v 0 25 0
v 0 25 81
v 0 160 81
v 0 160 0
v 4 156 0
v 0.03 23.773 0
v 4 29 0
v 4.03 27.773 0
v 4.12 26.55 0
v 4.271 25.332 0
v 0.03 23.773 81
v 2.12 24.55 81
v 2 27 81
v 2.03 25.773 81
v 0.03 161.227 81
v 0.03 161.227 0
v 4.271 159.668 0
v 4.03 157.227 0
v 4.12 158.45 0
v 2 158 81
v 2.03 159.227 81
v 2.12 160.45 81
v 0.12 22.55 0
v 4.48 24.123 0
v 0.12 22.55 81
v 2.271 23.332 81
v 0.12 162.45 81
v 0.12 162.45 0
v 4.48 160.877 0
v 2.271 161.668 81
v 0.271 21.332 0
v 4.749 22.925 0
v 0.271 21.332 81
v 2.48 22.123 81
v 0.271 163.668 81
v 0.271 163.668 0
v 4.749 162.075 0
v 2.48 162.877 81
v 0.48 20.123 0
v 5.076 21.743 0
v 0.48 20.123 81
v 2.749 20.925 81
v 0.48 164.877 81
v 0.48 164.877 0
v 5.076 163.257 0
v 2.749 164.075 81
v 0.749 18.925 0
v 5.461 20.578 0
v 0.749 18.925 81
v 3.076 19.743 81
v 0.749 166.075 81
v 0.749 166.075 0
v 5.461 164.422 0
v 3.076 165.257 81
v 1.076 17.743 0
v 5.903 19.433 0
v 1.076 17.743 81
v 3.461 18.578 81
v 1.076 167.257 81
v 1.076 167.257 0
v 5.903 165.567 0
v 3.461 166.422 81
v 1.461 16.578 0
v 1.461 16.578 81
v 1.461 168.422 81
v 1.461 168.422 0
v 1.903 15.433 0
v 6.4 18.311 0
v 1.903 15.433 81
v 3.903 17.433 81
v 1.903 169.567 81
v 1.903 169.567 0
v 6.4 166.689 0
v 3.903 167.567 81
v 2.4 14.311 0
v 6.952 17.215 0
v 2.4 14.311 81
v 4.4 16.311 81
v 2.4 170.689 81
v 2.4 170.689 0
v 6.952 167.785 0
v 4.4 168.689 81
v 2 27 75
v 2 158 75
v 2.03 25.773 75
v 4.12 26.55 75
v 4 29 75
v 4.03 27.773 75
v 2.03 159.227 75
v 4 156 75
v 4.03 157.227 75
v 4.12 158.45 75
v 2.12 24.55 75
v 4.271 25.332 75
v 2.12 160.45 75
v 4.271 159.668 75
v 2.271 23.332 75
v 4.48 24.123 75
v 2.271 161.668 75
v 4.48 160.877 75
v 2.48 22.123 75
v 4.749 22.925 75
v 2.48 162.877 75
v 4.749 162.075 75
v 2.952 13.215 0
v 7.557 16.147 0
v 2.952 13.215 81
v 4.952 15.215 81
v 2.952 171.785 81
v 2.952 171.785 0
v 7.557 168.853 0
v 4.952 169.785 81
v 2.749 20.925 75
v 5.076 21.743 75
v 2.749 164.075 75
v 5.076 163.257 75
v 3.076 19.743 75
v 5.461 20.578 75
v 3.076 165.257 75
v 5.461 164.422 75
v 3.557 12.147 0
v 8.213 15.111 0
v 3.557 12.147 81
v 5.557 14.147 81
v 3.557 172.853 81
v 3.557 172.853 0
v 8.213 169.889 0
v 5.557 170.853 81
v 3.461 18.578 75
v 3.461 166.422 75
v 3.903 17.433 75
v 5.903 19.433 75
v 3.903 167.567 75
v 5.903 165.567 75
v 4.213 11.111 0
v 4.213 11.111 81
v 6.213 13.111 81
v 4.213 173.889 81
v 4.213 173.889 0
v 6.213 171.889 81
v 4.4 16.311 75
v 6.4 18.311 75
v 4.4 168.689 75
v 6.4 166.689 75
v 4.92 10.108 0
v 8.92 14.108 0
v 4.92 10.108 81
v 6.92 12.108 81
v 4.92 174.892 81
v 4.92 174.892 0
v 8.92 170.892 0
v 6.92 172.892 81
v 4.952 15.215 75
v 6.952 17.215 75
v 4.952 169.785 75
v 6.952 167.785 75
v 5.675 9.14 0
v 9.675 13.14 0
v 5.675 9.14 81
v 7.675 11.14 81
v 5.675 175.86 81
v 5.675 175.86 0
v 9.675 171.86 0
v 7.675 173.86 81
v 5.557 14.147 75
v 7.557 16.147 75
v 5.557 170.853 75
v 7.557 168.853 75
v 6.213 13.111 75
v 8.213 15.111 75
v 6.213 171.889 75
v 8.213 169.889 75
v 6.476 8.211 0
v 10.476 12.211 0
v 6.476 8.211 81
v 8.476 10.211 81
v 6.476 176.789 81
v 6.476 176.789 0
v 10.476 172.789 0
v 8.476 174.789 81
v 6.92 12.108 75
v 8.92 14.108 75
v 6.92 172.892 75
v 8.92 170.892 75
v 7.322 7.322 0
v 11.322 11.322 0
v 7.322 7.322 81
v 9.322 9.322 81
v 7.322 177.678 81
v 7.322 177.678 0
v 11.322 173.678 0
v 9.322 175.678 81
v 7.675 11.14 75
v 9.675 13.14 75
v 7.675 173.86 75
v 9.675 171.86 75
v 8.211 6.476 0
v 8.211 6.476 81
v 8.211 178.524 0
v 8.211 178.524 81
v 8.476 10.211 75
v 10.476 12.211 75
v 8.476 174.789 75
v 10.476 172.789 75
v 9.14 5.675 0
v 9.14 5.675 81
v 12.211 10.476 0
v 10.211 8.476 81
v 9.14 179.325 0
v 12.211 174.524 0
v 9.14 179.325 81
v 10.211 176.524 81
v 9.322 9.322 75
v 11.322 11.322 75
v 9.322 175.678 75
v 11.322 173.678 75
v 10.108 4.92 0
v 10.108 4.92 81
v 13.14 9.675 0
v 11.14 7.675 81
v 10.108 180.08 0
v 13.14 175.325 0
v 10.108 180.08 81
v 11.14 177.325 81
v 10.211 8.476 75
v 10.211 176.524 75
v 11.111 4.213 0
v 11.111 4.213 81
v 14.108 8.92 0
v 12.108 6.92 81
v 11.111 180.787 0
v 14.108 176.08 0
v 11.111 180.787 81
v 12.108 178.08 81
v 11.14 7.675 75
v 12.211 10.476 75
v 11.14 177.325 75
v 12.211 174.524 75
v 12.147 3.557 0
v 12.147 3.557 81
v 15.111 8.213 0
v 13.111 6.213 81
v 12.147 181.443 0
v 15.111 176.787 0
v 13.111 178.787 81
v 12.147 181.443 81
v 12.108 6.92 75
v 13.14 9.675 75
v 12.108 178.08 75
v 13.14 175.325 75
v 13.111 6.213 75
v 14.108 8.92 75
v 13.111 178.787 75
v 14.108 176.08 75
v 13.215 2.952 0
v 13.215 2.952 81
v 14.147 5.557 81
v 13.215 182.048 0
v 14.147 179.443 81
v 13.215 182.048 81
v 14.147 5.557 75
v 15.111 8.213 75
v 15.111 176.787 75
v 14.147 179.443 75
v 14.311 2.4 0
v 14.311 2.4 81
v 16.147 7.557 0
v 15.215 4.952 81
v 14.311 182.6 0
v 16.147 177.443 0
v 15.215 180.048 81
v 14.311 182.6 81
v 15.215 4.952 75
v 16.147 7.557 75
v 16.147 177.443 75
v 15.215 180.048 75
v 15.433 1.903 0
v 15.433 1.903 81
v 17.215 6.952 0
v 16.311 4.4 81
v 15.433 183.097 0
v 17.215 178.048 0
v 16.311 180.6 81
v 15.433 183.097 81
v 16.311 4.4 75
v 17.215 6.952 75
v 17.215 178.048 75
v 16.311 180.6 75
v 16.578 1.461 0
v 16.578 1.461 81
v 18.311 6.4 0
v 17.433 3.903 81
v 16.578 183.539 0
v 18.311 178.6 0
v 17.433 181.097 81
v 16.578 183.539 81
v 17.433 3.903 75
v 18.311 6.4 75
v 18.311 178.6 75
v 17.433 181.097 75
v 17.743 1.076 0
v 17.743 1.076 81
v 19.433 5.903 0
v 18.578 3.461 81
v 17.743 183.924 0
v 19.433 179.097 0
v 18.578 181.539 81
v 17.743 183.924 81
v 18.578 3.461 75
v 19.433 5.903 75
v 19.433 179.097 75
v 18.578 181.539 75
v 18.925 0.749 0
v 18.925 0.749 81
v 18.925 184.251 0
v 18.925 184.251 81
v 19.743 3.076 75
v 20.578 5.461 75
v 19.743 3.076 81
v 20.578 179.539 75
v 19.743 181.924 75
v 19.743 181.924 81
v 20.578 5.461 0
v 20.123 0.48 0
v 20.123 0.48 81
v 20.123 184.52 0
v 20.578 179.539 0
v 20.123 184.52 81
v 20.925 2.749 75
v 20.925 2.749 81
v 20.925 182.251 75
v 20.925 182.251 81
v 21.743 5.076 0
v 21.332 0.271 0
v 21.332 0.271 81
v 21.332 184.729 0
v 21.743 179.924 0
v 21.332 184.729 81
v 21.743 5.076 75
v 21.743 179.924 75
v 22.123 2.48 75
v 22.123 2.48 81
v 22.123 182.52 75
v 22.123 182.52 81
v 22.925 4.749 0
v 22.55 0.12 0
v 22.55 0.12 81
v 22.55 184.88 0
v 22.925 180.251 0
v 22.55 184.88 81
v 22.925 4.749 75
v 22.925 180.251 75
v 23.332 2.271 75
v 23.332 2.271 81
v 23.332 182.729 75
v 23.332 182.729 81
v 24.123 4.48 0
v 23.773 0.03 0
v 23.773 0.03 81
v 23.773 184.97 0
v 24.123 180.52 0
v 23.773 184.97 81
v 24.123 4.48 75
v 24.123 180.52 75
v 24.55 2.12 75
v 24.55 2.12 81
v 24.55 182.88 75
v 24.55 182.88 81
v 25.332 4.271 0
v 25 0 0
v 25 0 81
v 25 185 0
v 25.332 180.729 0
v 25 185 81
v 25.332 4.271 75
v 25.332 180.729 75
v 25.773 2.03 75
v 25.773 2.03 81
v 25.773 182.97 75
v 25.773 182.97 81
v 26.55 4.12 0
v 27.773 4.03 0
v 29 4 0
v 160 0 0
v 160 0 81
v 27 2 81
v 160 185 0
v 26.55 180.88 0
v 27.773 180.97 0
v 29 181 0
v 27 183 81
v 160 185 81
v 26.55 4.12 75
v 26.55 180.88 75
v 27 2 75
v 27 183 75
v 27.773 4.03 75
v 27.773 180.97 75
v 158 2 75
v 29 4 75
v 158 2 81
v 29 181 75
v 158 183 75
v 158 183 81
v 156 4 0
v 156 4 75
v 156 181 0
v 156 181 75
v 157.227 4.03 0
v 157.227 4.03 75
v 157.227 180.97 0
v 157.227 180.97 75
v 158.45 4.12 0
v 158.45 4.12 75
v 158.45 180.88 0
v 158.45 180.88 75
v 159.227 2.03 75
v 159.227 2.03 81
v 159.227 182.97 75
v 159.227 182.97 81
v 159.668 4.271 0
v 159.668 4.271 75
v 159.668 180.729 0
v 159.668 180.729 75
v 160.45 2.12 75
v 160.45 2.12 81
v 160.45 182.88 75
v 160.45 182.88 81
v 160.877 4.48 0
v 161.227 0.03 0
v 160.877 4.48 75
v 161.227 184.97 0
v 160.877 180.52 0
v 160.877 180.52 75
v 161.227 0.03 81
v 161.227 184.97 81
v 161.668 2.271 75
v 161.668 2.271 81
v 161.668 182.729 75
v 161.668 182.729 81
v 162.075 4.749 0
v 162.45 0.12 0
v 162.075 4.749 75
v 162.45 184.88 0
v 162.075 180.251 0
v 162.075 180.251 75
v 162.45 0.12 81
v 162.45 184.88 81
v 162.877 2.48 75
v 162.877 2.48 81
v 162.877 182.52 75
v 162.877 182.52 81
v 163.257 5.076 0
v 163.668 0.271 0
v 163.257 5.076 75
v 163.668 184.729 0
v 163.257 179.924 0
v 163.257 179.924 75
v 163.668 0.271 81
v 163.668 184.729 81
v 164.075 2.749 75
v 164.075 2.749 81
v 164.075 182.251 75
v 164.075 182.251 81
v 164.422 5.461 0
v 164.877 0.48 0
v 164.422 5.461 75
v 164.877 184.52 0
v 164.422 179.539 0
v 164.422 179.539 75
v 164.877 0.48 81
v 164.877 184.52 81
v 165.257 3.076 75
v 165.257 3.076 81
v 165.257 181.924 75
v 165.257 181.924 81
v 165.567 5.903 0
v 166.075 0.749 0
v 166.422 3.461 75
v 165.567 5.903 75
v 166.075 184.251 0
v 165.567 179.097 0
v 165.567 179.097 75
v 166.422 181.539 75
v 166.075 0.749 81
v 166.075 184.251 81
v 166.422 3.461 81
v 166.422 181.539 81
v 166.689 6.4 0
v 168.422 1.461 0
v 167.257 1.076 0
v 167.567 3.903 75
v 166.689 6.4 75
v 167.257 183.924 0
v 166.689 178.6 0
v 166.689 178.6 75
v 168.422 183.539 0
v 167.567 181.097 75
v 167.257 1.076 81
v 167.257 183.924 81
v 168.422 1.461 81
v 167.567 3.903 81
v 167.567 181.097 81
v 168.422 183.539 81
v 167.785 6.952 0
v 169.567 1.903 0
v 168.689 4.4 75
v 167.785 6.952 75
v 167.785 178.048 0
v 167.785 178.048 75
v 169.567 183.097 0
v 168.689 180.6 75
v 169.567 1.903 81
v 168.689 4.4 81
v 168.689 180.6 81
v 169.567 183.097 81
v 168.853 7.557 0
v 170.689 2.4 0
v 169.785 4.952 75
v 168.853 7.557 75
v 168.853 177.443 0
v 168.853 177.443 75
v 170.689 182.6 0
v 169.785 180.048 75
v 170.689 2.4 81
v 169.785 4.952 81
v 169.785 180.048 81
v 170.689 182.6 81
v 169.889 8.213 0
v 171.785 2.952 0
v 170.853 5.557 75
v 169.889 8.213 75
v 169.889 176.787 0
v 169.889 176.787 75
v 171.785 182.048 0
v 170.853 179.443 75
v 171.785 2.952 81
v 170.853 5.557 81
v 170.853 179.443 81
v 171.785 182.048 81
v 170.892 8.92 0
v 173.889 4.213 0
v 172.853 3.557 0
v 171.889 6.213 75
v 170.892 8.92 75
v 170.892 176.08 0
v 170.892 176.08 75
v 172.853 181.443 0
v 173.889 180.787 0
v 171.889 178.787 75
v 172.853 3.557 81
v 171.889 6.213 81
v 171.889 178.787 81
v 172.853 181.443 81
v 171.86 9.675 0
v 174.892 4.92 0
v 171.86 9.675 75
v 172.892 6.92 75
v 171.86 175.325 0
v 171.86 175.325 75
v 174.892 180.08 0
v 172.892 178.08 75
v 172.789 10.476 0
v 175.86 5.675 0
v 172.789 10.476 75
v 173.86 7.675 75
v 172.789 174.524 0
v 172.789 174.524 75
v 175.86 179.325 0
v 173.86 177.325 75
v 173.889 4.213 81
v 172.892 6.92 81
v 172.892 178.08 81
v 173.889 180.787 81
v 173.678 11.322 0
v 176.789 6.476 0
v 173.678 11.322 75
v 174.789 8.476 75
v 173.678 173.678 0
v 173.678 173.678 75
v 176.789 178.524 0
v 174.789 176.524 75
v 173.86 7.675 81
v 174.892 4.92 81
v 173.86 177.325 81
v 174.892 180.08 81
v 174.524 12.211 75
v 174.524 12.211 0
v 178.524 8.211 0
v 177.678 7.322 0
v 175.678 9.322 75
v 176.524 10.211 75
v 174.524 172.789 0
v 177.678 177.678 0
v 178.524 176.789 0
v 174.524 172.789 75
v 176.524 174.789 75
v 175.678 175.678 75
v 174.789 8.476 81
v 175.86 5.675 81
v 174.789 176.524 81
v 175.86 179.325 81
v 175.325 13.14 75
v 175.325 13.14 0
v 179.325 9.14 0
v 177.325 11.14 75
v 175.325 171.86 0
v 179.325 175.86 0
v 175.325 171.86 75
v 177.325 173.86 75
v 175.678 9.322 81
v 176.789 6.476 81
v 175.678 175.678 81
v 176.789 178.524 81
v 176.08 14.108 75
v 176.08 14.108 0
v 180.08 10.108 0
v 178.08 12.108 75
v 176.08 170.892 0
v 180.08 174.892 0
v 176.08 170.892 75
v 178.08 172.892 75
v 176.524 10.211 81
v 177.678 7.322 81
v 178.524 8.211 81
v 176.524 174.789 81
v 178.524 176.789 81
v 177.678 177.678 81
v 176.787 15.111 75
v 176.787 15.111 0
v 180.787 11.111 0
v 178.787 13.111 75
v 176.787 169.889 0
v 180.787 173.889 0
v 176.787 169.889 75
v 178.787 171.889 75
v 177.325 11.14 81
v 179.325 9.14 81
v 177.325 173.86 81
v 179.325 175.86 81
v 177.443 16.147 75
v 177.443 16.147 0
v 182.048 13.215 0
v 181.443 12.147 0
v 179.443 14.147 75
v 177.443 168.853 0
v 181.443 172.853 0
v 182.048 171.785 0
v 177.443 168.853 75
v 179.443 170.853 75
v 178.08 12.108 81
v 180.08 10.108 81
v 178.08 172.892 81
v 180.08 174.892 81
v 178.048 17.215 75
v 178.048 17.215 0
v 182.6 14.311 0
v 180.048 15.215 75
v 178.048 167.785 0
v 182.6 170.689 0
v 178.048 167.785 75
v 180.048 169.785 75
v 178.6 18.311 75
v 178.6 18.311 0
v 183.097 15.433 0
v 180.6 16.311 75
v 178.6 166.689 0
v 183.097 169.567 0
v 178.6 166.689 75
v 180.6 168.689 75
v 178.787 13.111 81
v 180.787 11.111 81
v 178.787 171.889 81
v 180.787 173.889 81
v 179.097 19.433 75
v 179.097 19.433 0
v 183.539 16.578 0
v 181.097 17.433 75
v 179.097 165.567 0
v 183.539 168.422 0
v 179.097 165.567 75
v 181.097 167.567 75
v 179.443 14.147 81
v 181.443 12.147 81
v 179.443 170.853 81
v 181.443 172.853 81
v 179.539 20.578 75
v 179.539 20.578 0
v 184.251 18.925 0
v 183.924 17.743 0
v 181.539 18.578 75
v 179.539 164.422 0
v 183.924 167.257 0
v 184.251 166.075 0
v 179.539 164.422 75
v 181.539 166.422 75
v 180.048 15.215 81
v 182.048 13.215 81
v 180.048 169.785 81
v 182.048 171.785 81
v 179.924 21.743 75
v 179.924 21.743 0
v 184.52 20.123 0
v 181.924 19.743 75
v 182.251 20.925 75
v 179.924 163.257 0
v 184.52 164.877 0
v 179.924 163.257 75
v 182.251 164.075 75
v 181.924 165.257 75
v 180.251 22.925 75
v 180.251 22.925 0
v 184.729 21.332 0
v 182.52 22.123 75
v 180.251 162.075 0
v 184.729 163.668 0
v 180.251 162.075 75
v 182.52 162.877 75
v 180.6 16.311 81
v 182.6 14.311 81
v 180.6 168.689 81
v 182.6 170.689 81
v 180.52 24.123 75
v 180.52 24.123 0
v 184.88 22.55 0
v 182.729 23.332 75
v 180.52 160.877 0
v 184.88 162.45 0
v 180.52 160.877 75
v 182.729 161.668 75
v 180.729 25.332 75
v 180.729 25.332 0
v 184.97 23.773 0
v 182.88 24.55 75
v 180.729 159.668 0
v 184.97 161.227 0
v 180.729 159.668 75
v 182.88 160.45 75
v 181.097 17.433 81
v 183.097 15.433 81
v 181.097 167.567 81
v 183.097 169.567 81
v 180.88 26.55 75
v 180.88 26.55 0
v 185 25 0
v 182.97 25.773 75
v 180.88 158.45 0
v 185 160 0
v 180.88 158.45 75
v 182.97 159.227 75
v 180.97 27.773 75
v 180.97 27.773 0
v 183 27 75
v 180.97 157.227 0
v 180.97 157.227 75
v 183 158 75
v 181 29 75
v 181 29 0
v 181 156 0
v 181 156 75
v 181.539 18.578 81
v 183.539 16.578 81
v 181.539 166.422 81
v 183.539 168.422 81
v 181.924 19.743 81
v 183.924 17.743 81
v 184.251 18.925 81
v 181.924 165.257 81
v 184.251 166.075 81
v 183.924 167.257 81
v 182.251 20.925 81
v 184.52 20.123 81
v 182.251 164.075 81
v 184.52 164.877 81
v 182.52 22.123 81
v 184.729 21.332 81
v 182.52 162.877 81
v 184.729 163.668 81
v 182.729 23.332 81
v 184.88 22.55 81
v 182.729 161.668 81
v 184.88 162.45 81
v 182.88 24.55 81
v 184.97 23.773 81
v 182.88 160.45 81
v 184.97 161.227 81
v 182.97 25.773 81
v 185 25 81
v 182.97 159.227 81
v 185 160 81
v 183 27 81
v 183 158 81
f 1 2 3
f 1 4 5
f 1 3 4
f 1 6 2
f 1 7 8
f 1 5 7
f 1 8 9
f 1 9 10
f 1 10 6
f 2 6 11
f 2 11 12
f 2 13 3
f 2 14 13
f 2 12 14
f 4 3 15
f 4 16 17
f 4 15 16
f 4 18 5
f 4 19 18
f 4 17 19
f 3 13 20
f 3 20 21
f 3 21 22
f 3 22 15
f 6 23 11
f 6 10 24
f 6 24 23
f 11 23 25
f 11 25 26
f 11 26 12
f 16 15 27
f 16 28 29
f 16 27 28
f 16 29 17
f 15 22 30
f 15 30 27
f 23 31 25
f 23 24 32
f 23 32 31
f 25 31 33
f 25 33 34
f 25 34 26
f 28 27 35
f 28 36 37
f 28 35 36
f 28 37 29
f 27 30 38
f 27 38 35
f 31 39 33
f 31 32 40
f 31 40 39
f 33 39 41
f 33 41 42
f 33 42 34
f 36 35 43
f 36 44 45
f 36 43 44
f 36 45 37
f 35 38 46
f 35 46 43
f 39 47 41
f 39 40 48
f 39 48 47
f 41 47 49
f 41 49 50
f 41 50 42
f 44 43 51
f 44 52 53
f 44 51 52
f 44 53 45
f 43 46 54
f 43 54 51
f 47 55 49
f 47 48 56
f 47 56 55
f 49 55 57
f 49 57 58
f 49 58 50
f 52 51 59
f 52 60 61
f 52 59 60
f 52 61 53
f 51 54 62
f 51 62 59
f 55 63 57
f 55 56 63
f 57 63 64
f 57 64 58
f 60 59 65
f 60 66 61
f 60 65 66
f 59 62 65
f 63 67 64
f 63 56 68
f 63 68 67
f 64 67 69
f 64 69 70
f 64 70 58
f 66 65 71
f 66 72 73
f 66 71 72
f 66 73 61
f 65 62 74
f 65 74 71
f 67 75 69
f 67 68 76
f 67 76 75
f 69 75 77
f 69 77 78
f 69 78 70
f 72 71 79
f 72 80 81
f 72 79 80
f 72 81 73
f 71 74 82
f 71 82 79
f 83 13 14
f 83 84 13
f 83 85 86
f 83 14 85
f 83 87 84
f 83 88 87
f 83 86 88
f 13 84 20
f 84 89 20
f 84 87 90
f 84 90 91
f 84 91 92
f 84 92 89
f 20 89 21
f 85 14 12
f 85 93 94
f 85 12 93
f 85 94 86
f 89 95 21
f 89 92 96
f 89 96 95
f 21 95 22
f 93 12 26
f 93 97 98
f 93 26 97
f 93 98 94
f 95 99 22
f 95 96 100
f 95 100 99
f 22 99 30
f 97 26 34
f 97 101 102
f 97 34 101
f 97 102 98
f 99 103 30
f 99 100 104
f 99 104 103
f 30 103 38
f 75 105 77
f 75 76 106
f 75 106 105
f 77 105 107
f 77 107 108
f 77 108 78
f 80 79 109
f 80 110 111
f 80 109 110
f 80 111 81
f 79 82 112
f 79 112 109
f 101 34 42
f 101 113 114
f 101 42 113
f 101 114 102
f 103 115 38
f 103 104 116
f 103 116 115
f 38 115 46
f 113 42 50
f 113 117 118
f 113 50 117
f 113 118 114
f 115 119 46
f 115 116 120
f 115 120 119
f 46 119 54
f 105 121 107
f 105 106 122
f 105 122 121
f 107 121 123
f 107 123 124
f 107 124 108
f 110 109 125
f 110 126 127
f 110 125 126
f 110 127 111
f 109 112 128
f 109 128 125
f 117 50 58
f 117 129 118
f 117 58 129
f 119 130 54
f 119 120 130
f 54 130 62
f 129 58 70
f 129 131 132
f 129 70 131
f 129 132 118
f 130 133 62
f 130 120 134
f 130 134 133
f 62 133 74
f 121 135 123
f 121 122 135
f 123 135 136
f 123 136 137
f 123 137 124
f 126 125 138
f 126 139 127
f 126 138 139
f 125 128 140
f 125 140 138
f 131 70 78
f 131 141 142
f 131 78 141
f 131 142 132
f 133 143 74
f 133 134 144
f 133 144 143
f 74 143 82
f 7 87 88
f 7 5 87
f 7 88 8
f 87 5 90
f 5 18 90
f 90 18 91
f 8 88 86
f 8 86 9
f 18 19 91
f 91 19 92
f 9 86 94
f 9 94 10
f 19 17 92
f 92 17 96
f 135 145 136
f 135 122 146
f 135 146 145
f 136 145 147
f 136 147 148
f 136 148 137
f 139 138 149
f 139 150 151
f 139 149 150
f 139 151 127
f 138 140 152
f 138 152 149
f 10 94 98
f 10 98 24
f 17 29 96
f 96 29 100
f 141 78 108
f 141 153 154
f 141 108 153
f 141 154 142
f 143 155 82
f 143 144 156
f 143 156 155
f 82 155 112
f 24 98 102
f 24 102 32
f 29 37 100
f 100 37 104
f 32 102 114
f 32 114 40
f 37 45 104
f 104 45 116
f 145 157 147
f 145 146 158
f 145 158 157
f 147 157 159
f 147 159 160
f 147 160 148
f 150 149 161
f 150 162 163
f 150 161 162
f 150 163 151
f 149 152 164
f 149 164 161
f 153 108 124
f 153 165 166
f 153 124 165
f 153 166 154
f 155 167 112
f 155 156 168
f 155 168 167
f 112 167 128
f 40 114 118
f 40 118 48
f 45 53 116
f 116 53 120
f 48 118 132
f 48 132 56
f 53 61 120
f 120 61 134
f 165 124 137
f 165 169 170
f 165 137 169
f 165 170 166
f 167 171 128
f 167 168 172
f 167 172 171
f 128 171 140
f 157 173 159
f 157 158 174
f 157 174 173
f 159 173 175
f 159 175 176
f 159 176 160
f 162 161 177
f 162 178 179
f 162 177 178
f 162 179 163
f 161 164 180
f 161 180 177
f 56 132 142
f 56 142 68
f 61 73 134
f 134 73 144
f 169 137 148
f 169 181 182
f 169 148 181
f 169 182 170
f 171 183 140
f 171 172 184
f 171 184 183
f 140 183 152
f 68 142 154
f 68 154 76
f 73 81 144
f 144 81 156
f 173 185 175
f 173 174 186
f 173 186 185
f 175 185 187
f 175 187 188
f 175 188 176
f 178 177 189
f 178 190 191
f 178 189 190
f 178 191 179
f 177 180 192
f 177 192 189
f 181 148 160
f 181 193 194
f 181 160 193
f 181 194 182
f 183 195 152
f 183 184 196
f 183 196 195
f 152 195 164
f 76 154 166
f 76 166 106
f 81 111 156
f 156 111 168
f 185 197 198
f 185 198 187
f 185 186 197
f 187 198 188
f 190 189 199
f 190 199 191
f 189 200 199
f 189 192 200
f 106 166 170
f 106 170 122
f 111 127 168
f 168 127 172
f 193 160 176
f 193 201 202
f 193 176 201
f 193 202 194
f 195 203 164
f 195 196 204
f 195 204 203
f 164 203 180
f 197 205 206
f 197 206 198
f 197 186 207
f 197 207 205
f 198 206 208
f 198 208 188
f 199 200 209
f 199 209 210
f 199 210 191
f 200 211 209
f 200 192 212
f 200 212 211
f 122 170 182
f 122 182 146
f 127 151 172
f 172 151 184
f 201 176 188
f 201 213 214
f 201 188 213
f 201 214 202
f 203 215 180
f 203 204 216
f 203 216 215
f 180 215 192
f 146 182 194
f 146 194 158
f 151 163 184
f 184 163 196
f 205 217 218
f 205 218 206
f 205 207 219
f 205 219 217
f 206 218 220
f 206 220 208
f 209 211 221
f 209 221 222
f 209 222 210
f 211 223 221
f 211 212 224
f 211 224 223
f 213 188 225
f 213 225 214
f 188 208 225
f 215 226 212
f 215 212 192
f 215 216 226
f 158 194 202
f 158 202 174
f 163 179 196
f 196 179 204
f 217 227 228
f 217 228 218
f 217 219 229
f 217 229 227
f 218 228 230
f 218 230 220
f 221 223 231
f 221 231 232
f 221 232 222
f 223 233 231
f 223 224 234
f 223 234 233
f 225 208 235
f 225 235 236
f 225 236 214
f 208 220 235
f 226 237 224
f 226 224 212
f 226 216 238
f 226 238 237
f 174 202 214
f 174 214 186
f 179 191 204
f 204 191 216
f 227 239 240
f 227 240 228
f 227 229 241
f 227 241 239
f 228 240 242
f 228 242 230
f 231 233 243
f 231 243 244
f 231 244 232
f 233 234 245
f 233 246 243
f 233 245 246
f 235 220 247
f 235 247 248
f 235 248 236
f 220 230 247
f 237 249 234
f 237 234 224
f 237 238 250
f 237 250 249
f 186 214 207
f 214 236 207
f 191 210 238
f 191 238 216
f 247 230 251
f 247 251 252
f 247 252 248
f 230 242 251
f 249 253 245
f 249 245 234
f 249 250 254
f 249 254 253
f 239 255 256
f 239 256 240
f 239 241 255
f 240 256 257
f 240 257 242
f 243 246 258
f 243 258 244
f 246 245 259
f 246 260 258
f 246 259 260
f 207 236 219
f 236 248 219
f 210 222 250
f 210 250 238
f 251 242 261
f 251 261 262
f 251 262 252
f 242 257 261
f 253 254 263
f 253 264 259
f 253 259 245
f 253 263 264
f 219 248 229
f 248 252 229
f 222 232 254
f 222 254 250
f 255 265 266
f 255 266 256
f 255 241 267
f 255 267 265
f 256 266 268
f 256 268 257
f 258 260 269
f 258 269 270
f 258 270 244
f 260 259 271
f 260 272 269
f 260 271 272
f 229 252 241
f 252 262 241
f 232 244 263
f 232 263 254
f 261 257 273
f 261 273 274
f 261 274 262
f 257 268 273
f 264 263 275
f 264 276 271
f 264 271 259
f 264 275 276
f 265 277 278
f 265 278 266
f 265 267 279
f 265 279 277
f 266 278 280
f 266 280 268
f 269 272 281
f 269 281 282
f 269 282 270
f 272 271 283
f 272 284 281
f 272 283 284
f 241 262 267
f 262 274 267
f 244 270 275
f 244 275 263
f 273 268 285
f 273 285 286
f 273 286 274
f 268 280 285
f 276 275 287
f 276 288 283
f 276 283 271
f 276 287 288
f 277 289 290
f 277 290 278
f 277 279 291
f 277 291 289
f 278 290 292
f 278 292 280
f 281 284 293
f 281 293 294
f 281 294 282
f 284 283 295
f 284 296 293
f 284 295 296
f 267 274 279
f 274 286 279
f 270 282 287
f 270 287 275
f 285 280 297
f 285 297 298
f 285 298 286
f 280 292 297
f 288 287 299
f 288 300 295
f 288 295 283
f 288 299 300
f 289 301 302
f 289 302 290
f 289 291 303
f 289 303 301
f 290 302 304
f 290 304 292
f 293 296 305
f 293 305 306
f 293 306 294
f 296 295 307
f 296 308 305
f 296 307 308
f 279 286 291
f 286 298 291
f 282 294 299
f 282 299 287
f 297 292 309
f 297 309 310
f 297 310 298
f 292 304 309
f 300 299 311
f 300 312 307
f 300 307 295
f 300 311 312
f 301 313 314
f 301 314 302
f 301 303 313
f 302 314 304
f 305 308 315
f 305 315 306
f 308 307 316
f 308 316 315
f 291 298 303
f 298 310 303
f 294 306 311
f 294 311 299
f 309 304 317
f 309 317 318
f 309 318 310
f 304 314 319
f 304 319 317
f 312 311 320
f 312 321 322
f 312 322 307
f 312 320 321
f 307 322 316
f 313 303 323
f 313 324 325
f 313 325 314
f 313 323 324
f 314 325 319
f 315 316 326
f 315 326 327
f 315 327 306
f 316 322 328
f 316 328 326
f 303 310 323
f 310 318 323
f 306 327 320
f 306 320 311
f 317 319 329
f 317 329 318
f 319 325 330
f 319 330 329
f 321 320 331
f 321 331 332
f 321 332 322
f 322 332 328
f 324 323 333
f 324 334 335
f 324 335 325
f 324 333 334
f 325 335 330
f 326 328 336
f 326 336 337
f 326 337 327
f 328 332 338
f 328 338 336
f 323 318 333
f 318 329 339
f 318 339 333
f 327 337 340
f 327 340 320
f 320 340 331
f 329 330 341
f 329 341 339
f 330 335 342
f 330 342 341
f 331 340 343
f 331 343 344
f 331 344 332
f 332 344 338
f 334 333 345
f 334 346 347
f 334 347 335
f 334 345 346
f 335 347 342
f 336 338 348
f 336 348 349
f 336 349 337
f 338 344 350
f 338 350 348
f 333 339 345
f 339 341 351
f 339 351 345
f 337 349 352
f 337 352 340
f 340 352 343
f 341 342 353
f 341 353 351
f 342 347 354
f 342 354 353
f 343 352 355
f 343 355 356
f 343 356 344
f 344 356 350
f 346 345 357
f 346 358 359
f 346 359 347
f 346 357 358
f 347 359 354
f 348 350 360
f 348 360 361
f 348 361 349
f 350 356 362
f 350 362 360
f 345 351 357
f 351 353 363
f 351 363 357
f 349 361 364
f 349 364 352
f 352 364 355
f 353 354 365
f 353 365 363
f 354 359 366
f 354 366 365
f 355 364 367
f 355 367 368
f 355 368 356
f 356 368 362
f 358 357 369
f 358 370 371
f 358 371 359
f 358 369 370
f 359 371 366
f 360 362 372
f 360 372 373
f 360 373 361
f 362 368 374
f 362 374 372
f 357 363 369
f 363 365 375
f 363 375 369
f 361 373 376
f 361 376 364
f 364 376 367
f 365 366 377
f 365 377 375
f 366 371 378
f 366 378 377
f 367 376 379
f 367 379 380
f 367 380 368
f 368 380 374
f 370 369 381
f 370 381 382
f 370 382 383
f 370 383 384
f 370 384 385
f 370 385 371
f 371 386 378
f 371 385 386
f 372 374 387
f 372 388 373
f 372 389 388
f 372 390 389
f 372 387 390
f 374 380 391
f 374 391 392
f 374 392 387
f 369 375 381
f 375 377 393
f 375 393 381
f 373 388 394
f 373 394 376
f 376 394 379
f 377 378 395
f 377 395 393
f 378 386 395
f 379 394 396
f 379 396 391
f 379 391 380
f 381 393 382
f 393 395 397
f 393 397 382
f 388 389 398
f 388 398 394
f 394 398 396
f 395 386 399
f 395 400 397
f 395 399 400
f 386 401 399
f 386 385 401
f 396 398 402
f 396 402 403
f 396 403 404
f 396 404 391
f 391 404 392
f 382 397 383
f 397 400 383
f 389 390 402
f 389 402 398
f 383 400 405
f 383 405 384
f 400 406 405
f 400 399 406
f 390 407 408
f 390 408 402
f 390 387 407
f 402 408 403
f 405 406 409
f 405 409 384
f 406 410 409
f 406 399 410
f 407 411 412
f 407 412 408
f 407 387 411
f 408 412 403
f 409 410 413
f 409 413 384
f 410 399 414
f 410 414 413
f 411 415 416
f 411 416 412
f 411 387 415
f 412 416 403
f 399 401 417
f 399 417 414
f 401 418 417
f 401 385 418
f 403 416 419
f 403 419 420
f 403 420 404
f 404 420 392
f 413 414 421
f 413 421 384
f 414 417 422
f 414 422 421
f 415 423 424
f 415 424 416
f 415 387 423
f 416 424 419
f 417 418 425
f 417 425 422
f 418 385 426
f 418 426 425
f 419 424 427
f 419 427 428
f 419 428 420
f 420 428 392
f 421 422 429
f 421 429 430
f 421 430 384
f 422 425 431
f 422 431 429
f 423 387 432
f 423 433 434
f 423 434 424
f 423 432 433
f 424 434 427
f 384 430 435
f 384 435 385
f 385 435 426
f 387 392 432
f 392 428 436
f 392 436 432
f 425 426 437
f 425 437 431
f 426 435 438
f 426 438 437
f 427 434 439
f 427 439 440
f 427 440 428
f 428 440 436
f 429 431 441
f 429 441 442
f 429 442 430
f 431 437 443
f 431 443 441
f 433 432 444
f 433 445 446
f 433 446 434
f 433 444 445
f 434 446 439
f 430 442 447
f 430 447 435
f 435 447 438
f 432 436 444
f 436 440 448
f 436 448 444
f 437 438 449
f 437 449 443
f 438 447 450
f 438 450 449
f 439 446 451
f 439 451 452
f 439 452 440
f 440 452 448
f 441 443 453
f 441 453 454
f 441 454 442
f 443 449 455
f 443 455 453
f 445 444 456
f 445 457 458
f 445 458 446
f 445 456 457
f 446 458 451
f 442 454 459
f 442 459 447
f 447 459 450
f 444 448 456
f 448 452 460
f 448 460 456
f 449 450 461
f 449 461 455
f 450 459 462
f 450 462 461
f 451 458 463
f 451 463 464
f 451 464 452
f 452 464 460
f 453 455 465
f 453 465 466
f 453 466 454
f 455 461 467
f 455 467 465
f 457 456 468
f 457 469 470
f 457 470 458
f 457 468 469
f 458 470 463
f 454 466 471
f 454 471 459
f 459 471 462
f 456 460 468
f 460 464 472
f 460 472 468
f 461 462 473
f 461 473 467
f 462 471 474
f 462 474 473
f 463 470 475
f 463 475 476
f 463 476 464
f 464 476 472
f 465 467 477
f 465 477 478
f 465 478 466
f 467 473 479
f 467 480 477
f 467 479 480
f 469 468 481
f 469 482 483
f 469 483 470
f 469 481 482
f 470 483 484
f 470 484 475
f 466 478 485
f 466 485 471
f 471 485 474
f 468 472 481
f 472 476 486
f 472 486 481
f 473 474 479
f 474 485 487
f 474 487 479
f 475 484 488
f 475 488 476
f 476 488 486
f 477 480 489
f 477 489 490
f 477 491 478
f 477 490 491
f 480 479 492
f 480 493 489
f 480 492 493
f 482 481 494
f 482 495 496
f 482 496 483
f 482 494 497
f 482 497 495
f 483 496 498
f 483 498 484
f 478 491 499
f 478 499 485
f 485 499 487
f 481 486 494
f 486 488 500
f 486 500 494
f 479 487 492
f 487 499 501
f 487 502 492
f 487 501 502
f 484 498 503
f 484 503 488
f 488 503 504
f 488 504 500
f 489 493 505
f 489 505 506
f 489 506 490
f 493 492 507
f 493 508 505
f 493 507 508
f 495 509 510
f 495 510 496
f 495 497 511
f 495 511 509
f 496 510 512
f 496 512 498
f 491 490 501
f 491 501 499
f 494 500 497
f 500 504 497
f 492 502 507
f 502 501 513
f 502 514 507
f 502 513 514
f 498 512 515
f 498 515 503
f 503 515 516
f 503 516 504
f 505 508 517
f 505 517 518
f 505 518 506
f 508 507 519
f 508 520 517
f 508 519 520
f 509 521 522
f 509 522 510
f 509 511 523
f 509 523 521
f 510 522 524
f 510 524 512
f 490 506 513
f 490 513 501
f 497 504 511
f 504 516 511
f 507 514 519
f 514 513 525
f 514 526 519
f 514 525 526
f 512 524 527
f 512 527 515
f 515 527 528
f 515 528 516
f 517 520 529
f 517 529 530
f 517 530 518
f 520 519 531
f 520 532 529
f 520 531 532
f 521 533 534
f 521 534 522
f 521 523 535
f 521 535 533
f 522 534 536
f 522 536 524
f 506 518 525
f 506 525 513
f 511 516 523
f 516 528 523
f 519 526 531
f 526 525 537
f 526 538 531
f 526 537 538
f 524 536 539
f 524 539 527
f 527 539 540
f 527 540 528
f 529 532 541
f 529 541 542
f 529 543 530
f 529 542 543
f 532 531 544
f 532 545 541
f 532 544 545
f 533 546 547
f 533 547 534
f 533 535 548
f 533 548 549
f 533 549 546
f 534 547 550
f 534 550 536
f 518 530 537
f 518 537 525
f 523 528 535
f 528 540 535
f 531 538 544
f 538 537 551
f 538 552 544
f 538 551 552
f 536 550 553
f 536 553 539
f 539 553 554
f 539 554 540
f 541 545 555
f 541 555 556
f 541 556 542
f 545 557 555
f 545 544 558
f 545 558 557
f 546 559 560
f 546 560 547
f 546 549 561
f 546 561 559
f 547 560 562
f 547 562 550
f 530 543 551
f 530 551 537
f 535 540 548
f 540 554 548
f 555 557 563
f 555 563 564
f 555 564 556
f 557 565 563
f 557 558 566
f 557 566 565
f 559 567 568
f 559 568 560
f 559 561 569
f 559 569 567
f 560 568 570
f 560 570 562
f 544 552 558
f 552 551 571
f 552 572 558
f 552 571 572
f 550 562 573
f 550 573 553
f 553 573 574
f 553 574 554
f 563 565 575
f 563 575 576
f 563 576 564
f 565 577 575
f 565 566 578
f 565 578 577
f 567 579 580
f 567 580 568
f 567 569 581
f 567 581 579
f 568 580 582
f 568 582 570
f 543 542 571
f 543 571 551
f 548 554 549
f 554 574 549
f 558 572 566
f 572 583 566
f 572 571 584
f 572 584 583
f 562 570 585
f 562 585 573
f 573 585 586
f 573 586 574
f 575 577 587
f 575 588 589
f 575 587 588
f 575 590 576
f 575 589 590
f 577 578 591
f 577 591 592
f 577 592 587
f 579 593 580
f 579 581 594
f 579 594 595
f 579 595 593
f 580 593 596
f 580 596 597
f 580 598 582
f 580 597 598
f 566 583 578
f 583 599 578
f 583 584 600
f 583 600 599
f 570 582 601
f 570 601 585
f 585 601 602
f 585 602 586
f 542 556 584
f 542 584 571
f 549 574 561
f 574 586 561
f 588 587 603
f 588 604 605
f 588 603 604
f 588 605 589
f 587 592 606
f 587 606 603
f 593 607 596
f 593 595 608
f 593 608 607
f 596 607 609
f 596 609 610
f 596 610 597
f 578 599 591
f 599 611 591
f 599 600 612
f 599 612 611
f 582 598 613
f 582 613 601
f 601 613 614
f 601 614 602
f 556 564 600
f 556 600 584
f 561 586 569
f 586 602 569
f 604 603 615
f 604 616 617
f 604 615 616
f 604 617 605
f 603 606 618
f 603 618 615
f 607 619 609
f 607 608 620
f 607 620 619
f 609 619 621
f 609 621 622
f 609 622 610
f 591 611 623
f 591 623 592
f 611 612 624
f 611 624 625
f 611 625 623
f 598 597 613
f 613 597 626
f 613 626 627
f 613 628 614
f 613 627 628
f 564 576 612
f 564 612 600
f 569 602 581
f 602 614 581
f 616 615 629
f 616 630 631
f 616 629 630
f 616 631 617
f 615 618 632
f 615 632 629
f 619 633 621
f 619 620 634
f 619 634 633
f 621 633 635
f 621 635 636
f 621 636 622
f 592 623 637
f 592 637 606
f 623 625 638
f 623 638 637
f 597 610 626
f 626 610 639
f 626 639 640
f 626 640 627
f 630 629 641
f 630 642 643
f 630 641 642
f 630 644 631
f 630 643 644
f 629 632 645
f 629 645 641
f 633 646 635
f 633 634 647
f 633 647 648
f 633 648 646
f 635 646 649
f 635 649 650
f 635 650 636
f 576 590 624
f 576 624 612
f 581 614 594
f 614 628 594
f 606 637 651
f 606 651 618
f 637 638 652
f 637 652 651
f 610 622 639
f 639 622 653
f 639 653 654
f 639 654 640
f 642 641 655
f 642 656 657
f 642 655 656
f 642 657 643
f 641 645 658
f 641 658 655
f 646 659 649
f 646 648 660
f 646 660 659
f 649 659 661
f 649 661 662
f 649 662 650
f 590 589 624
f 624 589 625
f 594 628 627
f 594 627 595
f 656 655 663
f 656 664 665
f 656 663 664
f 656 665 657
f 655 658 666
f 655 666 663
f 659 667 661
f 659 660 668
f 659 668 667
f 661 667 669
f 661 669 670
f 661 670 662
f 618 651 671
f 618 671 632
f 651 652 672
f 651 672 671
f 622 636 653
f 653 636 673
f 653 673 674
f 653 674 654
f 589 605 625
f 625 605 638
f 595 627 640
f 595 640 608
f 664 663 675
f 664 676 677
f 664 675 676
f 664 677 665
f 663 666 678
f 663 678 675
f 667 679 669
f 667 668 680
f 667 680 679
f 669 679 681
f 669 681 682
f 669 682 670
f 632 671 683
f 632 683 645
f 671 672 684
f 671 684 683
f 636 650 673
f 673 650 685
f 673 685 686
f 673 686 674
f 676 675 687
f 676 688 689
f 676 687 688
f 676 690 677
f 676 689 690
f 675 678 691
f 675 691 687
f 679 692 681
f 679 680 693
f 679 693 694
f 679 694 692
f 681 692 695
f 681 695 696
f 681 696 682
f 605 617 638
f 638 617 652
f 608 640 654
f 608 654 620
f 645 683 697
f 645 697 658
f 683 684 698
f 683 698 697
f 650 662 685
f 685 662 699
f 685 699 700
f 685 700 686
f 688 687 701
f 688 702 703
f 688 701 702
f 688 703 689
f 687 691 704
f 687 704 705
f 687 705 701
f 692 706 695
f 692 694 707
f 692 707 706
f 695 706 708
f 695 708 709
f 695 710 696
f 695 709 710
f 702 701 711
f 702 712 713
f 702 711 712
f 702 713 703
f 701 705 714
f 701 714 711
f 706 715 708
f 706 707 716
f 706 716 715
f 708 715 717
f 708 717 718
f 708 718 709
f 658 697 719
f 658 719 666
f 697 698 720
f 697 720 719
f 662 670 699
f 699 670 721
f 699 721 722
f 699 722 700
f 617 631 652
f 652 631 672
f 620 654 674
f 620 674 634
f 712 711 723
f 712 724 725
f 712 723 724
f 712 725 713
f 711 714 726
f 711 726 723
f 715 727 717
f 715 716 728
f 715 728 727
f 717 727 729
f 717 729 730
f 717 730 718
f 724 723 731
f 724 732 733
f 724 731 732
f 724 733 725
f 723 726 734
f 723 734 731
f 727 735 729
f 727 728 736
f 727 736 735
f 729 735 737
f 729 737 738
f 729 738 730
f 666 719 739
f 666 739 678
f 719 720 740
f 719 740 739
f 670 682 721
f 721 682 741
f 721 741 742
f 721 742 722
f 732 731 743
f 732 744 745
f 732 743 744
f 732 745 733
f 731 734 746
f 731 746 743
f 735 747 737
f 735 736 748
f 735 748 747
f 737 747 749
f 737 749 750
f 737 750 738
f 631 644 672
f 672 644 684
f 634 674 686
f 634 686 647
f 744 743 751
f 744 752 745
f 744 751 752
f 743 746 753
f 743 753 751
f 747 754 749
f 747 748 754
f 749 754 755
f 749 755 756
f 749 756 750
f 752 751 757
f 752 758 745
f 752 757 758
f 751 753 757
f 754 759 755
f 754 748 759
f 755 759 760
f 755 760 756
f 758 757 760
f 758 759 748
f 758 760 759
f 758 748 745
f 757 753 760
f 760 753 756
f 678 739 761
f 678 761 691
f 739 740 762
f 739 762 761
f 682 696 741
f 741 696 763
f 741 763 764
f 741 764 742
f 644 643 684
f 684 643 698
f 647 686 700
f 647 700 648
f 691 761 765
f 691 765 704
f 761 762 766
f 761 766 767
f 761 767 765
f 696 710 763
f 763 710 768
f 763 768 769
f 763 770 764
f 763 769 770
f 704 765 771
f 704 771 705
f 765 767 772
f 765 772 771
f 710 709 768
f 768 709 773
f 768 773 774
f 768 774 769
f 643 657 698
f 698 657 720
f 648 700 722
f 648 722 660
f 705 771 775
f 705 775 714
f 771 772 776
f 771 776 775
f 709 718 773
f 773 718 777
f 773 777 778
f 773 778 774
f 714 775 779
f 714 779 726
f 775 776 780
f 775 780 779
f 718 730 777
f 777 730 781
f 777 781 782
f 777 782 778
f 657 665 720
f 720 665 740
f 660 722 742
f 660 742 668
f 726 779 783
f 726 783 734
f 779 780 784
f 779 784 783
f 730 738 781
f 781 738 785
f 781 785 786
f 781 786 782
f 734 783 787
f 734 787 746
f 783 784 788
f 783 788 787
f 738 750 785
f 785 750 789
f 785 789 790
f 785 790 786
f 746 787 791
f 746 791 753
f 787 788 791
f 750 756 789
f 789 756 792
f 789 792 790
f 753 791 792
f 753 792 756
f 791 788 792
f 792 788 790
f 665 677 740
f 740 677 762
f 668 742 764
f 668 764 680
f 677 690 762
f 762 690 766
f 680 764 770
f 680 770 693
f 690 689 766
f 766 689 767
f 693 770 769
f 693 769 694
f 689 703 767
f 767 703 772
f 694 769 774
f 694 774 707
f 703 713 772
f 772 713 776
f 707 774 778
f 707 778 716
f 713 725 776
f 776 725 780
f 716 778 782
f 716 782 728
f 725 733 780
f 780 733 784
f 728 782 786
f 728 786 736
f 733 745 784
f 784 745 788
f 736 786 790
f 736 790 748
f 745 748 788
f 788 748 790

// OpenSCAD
// simple stand for my new 
// mac mini m4
// version 01
// 06.11.2025 Sebastian Weigl

$fn=128;
difference(){
// outer form
minkowski(){
translate([25,25,0])
cylinder(h=80,r=25,center=false);
cube([135,135,1]);
}

// inner form
minkowski(){
translate([29,29,0])
cylinder(h=80,r=25,center=false);
cube([127,127,1]);
}

// inner rim
#minkowski(){
translate([27,27,75])
cylinder(h=5,r=25,center=false);
cube([131,131,1]);
}

}
